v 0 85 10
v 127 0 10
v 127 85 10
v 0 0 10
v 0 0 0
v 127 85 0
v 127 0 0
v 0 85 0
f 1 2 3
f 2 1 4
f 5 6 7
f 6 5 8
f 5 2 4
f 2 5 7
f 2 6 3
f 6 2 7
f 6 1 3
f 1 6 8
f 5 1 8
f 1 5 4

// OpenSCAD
// Corning 96 Wellplate 360ul Lid
// loadName: corning_96_wellplate_360ul_lid
// Auto-generated by labware_to_stl.py from Opentrons V2 labware definition

$fn = 32;

difference() {
    // ── Labware body ──────────────────────────────────────────────
    cube([127.0000, 85.0000, 10.0000]);

    // ── Well cutouts ──────────────────────────────────────────────
}
